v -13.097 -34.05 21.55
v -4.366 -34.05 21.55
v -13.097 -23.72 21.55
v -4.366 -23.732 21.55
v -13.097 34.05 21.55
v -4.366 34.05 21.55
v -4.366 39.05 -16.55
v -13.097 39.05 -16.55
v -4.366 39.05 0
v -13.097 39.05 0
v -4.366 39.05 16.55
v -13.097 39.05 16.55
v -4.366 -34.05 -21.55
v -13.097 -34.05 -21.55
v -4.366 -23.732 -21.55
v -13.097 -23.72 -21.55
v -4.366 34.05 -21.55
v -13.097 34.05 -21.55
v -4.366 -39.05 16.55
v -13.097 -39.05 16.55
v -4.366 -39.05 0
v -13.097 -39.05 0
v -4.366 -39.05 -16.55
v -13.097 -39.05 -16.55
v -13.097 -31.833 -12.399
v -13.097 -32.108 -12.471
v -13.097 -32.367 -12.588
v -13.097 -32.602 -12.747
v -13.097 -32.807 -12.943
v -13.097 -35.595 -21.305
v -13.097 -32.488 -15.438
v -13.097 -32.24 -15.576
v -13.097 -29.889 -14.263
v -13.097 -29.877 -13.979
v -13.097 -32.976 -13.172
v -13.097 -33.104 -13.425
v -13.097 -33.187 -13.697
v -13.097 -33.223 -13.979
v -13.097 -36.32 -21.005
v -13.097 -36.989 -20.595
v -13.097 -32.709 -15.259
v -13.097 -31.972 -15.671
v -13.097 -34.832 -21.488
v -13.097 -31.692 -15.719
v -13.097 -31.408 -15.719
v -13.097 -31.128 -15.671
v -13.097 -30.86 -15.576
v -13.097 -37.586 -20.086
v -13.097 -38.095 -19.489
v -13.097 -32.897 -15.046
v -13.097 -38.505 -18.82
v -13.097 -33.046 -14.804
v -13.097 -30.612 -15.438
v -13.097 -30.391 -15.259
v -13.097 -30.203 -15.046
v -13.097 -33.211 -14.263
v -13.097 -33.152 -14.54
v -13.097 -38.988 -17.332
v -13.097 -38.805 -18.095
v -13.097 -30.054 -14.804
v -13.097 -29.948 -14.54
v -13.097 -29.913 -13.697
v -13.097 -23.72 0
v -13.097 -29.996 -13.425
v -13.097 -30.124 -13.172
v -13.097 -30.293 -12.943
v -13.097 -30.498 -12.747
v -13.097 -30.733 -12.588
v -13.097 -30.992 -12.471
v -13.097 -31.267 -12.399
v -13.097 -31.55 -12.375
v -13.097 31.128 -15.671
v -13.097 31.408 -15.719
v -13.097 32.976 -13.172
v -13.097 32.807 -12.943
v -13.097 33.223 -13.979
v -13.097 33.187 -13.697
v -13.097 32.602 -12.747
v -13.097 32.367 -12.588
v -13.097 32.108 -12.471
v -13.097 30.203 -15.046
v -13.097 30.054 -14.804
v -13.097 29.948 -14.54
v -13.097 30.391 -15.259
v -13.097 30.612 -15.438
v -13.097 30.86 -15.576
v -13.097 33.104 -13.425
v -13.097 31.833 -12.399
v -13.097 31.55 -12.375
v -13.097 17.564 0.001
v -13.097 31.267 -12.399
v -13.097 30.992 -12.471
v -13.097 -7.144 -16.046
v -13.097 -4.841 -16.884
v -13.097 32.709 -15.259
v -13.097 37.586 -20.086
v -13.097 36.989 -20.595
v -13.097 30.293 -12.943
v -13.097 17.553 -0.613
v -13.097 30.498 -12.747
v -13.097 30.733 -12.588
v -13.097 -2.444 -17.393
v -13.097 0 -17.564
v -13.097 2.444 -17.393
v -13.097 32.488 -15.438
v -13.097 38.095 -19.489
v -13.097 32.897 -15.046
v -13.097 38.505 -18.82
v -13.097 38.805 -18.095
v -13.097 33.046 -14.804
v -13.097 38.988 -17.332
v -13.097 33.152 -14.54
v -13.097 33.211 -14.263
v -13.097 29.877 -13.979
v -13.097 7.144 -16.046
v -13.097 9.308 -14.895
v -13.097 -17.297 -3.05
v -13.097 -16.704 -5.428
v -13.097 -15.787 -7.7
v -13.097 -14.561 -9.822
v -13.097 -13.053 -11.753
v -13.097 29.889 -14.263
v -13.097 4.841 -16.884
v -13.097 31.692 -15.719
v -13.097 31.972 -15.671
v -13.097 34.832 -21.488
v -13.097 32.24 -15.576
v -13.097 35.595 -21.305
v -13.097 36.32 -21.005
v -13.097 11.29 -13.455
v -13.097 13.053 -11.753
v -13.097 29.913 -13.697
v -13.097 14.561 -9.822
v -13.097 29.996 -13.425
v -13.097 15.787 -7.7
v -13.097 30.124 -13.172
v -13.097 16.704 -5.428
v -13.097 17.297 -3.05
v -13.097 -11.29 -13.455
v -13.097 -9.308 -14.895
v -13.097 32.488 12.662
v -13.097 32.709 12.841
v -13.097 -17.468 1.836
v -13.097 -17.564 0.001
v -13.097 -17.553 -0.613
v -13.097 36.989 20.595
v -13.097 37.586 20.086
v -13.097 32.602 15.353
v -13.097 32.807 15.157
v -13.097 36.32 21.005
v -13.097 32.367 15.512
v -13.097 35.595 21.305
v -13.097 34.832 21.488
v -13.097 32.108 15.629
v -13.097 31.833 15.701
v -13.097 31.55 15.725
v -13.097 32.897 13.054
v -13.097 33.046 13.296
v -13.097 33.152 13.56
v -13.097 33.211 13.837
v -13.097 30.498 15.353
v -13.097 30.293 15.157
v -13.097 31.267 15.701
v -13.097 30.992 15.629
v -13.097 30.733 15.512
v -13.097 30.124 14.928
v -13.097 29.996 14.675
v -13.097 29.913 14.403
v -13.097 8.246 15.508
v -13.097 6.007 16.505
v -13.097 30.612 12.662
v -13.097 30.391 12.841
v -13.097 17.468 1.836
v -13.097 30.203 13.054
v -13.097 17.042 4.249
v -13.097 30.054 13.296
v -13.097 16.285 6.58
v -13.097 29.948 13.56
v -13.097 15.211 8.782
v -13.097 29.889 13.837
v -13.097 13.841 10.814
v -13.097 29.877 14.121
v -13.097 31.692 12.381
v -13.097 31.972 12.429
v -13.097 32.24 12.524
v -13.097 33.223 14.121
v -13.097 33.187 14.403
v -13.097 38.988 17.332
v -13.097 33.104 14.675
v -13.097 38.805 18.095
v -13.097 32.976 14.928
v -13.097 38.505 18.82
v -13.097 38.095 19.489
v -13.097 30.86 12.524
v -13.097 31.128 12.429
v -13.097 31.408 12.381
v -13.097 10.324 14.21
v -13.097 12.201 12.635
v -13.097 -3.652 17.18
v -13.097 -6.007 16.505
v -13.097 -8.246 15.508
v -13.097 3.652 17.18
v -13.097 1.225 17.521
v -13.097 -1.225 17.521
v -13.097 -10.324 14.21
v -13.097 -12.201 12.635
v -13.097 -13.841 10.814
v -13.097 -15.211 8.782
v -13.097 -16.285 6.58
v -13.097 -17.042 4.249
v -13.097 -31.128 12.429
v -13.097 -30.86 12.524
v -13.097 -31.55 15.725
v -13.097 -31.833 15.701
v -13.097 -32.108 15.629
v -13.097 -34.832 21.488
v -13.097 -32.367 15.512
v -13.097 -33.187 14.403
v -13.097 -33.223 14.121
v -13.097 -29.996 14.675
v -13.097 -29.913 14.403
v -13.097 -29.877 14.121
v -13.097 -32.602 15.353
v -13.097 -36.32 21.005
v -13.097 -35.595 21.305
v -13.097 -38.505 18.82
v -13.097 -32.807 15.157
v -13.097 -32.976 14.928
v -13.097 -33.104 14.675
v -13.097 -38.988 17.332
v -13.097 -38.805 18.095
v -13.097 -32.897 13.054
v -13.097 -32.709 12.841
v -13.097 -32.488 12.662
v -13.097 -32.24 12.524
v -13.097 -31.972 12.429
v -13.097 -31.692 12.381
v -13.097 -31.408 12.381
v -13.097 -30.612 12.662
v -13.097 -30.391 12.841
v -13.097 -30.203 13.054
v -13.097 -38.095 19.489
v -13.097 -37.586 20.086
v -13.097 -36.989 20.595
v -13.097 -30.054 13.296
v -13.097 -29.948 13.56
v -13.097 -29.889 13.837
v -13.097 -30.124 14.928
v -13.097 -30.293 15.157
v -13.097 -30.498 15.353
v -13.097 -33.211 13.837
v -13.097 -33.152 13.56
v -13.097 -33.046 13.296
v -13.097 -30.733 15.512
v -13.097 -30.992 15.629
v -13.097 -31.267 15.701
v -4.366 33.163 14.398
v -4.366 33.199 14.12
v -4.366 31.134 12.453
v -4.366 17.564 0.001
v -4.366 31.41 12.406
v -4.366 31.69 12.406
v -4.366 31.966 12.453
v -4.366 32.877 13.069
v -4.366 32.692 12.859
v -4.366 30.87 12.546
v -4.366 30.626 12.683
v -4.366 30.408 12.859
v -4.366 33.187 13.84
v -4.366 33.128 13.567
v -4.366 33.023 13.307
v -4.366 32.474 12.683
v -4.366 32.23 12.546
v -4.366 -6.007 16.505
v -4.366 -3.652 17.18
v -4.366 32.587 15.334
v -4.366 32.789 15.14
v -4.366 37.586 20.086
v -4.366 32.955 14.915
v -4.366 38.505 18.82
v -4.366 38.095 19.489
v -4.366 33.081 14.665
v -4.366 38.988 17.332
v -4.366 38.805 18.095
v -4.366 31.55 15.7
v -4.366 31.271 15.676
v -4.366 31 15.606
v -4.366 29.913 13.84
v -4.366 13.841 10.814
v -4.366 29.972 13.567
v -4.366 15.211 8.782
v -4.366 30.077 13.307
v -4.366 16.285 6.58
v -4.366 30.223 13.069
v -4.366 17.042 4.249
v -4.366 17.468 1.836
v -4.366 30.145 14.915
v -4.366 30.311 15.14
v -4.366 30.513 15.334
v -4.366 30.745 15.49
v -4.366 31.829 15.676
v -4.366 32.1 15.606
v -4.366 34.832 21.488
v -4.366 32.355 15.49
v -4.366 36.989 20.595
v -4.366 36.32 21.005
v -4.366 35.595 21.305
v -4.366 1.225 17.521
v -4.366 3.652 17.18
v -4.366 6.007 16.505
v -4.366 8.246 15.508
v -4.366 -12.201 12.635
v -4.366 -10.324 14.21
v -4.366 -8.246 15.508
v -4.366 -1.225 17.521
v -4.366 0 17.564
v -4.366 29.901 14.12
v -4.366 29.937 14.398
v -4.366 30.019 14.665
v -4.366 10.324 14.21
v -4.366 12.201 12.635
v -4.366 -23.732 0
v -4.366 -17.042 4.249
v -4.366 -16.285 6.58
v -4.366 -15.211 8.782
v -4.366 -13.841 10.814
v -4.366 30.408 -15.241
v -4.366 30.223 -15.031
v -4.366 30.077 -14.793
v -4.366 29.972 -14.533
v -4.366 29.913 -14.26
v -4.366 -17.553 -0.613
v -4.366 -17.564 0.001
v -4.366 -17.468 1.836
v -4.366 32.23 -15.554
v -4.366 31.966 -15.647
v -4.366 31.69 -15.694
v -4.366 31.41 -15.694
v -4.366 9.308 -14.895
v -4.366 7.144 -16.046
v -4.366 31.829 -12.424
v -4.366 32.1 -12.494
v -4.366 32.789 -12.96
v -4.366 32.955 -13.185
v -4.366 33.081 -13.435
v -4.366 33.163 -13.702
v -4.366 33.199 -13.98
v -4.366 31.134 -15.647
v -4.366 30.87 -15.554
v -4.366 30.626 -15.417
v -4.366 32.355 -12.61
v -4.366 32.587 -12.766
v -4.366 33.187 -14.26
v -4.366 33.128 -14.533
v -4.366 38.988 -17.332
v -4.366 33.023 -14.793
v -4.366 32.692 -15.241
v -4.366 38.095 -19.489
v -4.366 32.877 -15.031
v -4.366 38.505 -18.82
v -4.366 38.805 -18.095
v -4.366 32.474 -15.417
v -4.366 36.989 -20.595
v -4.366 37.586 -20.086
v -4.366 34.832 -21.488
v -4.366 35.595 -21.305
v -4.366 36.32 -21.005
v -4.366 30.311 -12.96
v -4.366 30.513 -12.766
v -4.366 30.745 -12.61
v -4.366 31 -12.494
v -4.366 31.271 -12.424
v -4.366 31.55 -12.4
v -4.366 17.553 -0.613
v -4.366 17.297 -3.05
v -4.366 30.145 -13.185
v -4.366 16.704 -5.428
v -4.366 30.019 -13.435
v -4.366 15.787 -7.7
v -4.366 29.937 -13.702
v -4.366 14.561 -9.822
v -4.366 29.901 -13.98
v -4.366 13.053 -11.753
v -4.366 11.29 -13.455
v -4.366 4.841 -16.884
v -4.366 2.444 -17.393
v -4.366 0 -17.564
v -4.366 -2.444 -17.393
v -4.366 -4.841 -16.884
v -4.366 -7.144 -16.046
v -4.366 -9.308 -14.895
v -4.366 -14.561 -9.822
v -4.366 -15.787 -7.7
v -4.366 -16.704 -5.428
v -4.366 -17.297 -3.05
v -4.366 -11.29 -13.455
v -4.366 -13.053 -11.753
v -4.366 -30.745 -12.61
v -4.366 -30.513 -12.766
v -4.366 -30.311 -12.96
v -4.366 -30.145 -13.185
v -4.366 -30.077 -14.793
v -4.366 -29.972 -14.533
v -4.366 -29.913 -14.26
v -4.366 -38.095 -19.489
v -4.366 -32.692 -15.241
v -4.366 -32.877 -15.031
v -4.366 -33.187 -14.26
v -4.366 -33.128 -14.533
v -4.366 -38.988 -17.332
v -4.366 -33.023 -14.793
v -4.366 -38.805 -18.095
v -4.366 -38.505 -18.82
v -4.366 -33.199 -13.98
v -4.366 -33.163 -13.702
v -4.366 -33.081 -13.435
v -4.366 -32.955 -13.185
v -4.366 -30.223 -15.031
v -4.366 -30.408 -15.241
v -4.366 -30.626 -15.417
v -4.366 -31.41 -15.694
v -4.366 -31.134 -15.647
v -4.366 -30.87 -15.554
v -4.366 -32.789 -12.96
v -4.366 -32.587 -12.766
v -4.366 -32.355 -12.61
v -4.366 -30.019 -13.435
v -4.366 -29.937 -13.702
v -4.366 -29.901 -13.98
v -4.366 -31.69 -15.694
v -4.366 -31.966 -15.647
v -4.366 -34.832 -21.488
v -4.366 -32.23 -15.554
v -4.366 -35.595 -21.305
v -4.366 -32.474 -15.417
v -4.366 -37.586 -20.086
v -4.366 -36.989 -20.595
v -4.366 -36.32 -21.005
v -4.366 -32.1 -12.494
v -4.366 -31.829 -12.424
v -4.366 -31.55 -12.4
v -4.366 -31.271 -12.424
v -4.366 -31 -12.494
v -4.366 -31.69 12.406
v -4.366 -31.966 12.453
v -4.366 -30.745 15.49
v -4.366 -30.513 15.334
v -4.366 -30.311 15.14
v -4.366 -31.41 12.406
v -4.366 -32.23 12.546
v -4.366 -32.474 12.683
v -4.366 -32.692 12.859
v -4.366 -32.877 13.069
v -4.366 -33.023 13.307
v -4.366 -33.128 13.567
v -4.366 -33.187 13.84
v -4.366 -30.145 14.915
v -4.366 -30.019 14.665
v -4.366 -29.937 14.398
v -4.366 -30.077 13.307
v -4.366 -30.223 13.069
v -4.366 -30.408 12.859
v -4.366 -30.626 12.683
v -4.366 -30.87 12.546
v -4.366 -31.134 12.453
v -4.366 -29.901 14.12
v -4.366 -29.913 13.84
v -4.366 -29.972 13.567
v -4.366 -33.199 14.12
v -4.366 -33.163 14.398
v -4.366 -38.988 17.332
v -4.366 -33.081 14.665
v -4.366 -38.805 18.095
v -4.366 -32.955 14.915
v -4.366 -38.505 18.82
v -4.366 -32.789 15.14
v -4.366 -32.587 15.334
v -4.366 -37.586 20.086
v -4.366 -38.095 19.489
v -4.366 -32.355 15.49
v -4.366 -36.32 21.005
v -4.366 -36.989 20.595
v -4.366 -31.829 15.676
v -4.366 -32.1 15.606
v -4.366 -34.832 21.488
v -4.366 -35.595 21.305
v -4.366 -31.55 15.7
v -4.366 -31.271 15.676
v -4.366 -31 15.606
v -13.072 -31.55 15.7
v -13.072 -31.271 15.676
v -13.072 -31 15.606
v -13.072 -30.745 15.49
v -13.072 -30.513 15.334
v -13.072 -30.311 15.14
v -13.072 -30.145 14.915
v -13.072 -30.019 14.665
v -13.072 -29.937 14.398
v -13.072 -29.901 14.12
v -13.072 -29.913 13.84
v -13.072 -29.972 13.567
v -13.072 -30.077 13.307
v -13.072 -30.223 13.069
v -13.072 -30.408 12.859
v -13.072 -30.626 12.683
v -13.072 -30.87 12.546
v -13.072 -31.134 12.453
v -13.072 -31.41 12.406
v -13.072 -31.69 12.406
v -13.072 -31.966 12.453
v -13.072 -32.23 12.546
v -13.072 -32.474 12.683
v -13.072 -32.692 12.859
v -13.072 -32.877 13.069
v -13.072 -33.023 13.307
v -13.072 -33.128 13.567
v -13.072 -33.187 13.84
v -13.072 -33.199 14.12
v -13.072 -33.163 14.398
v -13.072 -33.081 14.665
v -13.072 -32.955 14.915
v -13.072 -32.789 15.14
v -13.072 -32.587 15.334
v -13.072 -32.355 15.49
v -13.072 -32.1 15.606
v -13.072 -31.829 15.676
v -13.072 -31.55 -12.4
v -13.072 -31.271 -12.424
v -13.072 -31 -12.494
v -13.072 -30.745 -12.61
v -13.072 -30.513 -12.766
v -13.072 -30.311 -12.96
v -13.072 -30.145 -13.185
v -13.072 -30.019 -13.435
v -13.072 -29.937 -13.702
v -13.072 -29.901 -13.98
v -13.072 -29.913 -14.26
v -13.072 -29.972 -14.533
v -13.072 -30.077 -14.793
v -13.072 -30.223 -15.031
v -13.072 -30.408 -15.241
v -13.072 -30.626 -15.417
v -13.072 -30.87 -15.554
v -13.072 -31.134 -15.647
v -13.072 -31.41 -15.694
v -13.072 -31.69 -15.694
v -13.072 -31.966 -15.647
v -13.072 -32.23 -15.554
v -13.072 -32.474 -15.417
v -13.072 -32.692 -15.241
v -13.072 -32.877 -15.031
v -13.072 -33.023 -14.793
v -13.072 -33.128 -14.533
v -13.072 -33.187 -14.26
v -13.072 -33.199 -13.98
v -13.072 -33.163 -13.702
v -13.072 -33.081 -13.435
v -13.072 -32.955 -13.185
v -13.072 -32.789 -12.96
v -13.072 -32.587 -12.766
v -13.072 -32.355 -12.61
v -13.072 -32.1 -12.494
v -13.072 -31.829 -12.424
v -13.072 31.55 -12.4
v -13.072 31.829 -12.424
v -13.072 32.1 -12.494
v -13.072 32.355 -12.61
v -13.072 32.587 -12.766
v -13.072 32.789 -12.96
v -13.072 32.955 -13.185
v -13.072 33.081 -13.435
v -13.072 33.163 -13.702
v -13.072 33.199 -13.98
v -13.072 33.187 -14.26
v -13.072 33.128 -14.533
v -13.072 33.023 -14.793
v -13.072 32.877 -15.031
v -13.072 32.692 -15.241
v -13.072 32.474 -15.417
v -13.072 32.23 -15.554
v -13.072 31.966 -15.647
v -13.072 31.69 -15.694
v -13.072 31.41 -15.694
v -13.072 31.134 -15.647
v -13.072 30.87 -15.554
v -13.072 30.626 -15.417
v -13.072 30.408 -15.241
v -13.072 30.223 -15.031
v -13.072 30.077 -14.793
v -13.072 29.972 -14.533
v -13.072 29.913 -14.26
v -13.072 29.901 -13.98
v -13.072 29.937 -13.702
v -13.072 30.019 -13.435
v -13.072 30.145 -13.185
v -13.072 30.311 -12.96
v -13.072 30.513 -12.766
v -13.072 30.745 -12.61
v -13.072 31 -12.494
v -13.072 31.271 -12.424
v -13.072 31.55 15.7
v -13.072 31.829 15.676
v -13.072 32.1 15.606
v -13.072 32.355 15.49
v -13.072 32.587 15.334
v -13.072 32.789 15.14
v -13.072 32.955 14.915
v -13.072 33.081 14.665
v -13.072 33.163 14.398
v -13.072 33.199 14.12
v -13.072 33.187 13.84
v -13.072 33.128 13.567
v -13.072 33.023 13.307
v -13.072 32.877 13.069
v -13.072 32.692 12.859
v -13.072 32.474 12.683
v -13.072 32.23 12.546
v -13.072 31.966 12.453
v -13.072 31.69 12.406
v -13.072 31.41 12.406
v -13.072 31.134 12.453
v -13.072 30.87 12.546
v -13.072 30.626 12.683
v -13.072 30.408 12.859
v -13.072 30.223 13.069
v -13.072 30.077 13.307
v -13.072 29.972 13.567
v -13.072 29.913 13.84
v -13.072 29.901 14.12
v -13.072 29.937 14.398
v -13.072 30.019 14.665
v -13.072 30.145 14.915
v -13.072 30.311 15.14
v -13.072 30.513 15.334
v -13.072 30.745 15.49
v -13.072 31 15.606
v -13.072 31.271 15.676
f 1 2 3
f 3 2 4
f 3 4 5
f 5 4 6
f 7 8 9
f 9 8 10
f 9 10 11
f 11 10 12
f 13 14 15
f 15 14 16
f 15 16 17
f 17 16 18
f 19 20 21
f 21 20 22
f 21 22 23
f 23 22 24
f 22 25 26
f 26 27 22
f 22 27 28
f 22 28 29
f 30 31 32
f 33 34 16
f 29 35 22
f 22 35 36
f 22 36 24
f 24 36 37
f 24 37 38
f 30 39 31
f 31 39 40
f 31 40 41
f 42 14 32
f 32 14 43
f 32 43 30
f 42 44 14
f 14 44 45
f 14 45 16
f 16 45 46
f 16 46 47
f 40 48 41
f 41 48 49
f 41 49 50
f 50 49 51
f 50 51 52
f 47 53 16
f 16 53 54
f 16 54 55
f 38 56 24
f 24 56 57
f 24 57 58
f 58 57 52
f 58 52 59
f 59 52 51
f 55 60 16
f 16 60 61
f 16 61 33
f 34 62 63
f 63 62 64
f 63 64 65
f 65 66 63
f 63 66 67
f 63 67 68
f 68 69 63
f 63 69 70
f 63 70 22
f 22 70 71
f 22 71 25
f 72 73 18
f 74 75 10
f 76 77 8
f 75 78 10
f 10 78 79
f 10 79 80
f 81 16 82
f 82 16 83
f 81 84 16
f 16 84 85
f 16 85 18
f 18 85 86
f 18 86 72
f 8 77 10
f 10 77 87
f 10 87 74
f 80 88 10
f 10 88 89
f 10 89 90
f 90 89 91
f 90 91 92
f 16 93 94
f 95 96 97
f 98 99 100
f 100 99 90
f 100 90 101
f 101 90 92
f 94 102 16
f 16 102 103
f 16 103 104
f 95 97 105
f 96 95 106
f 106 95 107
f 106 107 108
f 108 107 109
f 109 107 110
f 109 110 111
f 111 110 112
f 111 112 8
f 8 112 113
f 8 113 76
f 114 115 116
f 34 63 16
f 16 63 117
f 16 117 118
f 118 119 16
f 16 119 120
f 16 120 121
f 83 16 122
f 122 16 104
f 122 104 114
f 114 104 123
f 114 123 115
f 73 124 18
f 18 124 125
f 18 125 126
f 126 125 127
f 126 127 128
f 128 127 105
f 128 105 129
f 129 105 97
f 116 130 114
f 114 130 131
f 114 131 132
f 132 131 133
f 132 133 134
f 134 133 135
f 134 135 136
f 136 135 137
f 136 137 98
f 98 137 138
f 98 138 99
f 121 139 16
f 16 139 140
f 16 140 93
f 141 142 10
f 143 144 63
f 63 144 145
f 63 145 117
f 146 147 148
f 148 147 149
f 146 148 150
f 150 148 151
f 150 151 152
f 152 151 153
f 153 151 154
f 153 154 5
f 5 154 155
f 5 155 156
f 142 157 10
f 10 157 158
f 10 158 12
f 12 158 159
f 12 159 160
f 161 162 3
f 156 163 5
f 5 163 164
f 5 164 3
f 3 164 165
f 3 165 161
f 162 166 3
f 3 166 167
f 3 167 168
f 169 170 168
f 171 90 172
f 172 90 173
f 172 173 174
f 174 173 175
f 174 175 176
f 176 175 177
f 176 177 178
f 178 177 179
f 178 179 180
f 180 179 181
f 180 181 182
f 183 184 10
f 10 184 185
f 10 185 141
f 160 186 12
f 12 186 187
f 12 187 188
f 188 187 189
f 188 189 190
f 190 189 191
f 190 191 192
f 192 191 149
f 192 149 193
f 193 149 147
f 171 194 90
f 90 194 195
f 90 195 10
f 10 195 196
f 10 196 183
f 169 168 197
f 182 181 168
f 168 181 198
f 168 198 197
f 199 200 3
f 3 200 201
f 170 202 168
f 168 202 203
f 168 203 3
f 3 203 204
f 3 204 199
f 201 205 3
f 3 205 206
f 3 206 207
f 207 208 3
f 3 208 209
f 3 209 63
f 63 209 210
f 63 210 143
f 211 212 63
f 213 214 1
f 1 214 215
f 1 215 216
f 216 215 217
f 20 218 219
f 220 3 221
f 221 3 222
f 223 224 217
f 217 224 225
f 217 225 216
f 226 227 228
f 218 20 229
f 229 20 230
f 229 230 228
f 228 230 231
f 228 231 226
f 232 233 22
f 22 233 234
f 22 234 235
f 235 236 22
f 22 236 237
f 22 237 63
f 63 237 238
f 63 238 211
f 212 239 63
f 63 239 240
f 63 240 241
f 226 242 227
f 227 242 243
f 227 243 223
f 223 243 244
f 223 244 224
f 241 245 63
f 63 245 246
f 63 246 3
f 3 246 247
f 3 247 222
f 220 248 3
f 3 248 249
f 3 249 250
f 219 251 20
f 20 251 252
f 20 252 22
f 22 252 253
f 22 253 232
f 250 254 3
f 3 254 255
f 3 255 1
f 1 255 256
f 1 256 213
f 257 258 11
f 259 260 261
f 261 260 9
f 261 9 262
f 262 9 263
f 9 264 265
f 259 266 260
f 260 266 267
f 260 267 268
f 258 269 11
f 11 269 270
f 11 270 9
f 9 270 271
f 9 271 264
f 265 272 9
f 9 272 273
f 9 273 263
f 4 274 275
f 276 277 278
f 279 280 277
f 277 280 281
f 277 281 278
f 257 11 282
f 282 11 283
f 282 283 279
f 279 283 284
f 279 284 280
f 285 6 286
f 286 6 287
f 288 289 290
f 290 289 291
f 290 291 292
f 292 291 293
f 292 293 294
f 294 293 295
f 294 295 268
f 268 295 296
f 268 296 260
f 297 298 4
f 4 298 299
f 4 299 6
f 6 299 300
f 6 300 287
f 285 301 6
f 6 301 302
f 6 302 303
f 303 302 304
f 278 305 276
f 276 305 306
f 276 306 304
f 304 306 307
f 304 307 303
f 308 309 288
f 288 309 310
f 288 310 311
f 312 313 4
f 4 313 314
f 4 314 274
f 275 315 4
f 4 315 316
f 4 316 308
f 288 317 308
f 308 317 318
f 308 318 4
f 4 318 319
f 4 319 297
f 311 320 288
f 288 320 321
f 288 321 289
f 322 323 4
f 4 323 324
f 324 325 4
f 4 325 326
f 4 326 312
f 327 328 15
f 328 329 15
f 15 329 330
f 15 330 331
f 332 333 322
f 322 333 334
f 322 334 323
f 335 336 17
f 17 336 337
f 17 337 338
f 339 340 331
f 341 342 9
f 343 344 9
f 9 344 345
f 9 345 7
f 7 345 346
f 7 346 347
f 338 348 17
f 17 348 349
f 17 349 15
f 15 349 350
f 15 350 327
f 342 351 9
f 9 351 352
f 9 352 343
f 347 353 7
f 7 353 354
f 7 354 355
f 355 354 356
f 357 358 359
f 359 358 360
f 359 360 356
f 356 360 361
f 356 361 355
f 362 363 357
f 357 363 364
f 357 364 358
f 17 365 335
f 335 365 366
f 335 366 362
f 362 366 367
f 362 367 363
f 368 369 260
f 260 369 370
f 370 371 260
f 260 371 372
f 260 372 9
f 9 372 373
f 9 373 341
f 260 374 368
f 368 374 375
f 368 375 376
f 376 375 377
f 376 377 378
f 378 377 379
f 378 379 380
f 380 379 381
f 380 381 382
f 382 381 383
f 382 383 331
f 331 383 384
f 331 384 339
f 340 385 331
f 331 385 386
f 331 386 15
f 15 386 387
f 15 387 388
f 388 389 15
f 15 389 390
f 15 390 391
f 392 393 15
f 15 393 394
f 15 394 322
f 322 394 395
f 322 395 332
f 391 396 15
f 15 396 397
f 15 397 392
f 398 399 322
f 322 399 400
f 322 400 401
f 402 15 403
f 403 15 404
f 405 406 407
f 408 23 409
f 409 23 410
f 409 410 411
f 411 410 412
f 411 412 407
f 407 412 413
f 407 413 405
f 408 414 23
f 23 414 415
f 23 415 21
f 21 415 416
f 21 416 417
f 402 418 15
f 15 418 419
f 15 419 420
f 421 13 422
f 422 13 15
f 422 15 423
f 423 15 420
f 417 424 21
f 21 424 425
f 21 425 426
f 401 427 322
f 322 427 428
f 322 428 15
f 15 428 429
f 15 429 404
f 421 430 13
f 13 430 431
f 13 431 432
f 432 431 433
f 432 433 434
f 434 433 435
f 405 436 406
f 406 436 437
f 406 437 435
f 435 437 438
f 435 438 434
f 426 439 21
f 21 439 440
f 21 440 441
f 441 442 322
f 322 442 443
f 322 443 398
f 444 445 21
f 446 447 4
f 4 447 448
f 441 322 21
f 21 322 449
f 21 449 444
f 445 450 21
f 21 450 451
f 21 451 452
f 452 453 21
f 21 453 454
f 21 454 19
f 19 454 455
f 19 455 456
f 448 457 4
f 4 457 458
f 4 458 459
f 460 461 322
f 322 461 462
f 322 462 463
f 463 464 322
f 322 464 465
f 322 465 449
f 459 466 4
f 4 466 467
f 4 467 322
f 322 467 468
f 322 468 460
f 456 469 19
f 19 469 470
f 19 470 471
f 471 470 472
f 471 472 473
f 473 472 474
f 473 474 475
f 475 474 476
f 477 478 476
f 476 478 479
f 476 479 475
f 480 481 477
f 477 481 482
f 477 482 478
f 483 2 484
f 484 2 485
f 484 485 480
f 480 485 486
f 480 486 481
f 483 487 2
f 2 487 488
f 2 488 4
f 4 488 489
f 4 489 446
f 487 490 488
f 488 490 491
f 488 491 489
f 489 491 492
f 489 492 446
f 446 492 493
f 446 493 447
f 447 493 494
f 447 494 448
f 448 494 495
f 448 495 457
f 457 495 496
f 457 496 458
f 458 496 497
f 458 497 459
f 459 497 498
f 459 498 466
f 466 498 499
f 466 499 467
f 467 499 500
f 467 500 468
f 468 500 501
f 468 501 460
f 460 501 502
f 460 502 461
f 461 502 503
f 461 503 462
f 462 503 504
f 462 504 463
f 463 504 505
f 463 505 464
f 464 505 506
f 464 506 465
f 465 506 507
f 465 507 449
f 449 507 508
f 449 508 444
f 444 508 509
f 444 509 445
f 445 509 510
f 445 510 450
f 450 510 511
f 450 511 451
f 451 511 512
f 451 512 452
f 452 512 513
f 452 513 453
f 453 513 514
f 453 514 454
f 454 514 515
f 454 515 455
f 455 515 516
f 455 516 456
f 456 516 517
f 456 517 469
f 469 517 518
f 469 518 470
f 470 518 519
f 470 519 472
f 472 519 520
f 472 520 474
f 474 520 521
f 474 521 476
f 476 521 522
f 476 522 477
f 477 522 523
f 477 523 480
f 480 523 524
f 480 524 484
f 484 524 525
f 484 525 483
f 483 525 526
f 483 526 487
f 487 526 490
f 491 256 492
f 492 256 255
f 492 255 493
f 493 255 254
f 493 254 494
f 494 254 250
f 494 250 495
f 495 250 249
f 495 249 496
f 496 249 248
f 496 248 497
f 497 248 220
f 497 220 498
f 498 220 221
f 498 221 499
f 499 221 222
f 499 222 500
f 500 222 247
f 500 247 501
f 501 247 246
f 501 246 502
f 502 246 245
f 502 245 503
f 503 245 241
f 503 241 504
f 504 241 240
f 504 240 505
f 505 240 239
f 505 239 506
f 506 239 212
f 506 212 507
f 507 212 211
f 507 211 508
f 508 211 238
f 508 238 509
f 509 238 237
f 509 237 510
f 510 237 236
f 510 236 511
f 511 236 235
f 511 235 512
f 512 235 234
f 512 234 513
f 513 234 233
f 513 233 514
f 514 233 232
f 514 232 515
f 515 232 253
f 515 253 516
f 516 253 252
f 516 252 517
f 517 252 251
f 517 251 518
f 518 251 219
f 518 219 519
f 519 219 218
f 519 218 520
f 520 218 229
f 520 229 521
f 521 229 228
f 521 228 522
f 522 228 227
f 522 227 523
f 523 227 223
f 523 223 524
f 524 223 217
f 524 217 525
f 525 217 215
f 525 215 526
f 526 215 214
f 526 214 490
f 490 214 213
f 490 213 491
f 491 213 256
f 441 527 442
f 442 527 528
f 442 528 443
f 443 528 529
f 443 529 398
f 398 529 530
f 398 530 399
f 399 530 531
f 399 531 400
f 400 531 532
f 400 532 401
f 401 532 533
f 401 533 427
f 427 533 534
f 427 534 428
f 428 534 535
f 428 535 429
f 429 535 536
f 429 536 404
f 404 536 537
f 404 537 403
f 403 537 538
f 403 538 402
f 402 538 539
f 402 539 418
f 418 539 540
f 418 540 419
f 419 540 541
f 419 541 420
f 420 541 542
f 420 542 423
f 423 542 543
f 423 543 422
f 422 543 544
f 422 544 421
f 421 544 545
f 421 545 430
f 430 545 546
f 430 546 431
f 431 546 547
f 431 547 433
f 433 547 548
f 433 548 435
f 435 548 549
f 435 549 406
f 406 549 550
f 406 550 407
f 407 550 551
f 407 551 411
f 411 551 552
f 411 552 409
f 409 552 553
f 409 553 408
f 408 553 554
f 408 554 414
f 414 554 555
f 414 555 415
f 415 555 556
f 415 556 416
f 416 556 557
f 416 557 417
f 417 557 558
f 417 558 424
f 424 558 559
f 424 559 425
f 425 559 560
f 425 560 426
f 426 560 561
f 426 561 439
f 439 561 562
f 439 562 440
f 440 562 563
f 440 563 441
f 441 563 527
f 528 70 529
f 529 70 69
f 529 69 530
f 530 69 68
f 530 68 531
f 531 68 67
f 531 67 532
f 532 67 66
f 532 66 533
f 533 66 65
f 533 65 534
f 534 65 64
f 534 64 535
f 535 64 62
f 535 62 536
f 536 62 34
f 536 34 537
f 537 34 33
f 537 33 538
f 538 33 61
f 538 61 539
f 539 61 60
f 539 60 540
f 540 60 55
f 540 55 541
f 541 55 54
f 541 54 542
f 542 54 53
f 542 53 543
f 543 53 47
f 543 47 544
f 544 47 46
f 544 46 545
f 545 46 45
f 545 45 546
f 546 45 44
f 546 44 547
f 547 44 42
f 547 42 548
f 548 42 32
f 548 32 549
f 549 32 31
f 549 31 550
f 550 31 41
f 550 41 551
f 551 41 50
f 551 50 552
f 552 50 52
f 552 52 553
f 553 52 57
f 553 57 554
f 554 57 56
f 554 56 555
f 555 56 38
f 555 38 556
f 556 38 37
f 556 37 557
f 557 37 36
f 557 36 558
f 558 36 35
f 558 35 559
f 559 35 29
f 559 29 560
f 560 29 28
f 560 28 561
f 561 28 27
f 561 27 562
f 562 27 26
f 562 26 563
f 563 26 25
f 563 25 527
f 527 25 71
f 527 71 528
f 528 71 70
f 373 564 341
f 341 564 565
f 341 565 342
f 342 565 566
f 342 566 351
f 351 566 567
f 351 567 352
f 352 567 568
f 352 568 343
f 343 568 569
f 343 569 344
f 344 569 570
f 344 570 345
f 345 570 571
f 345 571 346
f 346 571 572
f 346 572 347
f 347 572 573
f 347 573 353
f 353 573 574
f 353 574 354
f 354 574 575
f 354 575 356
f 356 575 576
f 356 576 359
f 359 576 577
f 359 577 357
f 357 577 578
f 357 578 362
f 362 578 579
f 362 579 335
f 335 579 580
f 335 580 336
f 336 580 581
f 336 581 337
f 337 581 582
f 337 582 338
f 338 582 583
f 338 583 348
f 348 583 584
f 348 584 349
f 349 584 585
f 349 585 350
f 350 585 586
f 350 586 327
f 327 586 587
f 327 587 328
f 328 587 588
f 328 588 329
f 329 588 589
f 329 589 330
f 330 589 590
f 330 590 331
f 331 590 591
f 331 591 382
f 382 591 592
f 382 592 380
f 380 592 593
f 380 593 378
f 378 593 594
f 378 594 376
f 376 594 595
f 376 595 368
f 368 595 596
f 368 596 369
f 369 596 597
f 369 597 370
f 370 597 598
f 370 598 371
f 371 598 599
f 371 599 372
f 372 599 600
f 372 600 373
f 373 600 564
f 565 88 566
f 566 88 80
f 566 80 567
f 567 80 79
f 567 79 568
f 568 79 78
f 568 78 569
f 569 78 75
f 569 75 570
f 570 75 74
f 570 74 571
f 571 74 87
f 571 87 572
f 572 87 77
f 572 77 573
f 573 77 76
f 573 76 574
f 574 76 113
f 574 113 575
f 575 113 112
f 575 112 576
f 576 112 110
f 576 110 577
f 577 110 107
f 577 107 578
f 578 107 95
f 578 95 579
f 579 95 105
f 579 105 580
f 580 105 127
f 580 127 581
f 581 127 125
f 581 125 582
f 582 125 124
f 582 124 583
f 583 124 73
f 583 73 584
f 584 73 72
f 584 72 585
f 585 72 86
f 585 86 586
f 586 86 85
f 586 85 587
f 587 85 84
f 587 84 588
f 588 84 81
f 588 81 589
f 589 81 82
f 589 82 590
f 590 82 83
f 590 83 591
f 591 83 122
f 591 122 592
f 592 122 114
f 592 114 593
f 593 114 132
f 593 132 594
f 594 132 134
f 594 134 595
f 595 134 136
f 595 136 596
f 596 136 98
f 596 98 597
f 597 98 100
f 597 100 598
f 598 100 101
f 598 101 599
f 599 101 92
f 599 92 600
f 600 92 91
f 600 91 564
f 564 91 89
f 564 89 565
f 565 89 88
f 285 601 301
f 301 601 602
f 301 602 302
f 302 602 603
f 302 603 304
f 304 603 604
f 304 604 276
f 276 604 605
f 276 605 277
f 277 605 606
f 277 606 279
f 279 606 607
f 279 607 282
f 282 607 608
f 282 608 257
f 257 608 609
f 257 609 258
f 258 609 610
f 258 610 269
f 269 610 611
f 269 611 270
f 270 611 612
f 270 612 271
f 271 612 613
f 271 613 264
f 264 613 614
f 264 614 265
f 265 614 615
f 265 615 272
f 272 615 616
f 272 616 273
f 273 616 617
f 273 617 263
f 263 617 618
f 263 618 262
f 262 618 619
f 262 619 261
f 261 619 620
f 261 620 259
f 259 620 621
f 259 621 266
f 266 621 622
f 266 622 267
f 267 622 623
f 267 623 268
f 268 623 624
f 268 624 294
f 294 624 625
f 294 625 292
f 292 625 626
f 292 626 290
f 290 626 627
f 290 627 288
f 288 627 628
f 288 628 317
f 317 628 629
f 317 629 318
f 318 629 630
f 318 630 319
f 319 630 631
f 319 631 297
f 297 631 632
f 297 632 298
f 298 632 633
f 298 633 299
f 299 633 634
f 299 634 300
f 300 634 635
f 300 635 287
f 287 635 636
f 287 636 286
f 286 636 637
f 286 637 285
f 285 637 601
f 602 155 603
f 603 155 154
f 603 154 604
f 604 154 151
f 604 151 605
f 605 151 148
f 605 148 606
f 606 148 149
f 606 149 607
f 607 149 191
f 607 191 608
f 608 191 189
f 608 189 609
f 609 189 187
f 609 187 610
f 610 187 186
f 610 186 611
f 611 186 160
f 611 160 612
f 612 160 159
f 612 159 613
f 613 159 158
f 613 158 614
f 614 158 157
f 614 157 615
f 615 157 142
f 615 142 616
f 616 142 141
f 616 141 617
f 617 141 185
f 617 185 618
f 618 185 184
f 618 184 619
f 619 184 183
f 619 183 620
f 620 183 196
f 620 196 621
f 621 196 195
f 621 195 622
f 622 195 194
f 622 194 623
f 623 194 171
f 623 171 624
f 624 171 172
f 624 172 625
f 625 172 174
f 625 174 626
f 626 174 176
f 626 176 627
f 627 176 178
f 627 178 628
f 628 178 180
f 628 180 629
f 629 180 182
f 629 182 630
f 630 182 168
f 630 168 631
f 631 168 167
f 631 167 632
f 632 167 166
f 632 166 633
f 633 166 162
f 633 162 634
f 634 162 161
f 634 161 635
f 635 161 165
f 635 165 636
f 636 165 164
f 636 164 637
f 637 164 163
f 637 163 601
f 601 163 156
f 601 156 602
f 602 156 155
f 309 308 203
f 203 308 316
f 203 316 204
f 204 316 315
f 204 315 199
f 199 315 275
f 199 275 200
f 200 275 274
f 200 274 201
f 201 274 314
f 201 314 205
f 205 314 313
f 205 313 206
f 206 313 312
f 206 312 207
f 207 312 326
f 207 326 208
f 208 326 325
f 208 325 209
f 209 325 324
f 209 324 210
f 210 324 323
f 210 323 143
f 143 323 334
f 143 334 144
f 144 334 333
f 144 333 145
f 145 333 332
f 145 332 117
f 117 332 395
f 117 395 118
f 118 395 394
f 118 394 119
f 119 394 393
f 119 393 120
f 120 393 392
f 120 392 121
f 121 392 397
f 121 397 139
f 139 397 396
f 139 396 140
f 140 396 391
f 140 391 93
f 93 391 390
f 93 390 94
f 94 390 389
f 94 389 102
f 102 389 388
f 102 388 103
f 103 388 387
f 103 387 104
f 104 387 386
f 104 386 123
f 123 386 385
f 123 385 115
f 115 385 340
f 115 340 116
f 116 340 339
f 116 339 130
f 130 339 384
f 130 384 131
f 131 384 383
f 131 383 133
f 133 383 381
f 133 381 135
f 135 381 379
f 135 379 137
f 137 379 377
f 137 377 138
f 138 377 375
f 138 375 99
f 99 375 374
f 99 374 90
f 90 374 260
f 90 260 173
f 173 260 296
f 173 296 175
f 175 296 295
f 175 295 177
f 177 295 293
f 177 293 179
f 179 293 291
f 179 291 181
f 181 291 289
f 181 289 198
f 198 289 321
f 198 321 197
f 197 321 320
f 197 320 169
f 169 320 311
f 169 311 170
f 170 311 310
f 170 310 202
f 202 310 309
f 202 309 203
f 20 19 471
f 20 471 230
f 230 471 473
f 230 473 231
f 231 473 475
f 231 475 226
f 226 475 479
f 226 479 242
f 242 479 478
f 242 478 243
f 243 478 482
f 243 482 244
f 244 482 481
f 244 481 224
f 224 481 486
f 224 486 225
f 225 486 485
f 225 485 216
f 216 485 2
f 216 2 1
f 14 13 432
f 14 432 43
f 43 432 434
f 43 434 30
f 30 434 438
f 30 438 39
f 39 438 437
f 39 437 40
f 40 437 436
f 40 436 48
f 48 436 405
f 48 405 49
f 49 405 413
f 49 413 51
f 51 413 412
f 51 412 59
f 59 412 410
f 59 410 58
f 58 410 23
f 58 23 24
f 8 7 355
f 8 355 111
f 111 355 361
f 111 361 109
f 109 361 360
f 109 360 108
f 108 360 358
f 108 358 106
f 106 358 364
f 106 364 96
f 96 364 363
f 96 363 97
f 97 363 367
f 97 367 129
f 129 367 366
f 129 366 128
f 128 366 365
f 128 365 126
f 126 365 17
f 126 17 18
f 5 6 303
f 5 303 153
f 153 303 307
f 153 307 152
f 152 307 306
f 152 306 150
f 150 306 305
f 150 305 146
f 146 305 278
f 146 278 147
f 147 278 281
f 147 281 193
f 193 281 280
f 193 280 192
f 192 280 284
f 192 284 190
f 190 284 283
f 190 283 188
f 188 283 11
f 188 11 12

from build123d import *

# Parameters (mm, degrees)
SKETCH1_R                               = 2.25
SKETCH1_R_2                             = 17.5641
BOSS_EXTRUDE1_DEPTH                     = 4.365625
SKETCH2_W                               = 78.1
SKETCH2_H                               = 43.1
BOSS_EXTRUDE2_DEPTH                     = 8.73125
M4_CLEARANCE_HOLE2_AT_2_COUNT           = 2
M4_CLEARANCE_HOLE2_AT_2_PITCH           = 28.1
M4_CLEARANCE_HOLE2_AT_3_COUNT           = 2
M4_CLEARANCE_HOLE2_AT_3_PITCH           = 69.07401827
M4_CLEARANCE_HOLE2_AT_4_COUNT           = 2
M4_CLEARANCE_HOLE2_AT_4_PITCH           = 63.1
SKETCH24_W                              = 78.1
SKETCH24_H                              = 43.1
BOSS_EXTRUDE3_DEPTH                     = 8.73125
TAP_DRILL_FOR_M4X0_7_TAP1_AT_2_COUNT    = 2
TAP_DRILL_FOR_M4X0_7_TAP1_AT_2_PITCH    = 28.1
TAP_DRILL_FOR_M4X0_7_TAP1_AT_3_COUNT    = 2
TAP_DRILL_FOR_M4X0_7_TAP1_AT_3_PITCH    = 69.07401827
TAP_DRILL_FOR_M4X0_7_TAP1_AT_4_COUNT    = 2
TAP_DRILL_FOR_M4X0_7_TAP1_AT_4_PITCH    = 63.1
TAP_DRILL_FOR_M3X0_5_TAP1_AT_2_COUNT    = 2
TAP_DRILL_FOR_M3X0_5_TAP1_AT_2_PITCH    = 36
TAP_DRILL_FOR_M3X0_5_TAP1_AT_3_COUNT    = 2
TAP_DRILL_FOR_M3X0_5_TAP1_AT_3_PITCH    = 28
TAP_DRILL_FOR_M3X0_5_TAP1_AT_4_COUNT    = 2
TAP_DRILL_FOR_M3X0_5_TAP1_AT_4_PITCH    = 45.607017004
TAP_DRILL_FOR_M2_5X0_45_TAP2_AT_2_COUNT = 2
TAP_DRILL_FOR_M2_5X0_45_TAP2_AT_2_PITCH = 15.8
SKETCH3_R                               = 17.5641
CUT_EXTRUDE3_DEPTH                      = 181.027817403
M6_CLEARANCE_HOLE2_AT_2_COUNT           = 2
M6_CLEARANCE_HOLE2_AT_2_PITCH           = 80
SKETCH14_W                              = 86.5
SKETCH14_H                              = 58.5
CUT_EXTRUDE4_DEPTH                      = 2
FILLET4_R                               = 10
M4_CLEARANCE_HOLE1_AT_2_COUNT           = 2
M4_CLEARANCE_HOLE1_AT_2_PITCH           = 14.136551913
M4_CLEARANCE_HOLE1_AT_3_COUNT           = 2
M4_CLEARANCE_HOLE1_AT_3_PITCH           = 7.068275957
M6_CLEARANCE_HOLE1_AT_2_COUNT           = 2
M6_CLEARANCE_HOLE1_AT_2_PITCH           = 25.4
FILLET5_R                               = 5
FILLET6_R                               = 5
SKETCH28_W                              = 15.5
SKETCH28_H                              = 20.75
SKETCH28_R                              = 1.5
BOSS_EXTRUDE4_DEPTH                     = 2.5
FILLET7_R                               = 1
SKETCH29_R                              = 1.5
BOSS_EXTRUDE5_DEPTH                     = 1.5
FILLET8_R                               = 0.5


with BuildPart() as part:
    # Sketch1 → Boss-Extrude1 (new, symmetric)
    with BuildSketch(Plane.YZ):
        Polygon((0, 170.95), (-50, 110.95), (-50, -79.05), (50, -79.05), (50, 110.95), align=None)
        with Locations((-26.25, -56.8)):
            Circle(SKETCH1_R, mode=Mode.SUBTRACT)
        with Locations((-26.25, -32.3)):
            Circle(SKETCH1_R, mode=Mode.SUBTRACT)
        with Locations((26.25, -56.8)):
            Circle(SKETCH1_R, mode=Mode.SUBTRACT)
        with Locations((26.25, -32.3)):
            Circle(SKETCH1_R, mode=Mode.SUBTRACT)
        Circle(SKETCH1_R_2, mode=Mode.SUBTRACT)
    extrude(amount=BOSS_EXTRUDE1_DEPTH, both=True)


with BuildPart() as body_2:
    # Sketch2 → Boss-Extrude2 (new body)
    with BuildSketch(Plane.YZ.offset(4.365625)):
        Rectangle(SKETCH2_W, SKETCH2_H)
    extrude(amount=BOSS_EXTRUDE2_DEPTH)


with BuildPart() as m4_clearance_hole2_tool:
    # Sketch23 → M4 Clearance Hole2 (revolve)
    with BuildSketch(Plane(origin=(13.096875, -31.55, 14.05), x_dir=(0, 0, -1), z_dir=(0, 1, 0))):
        Polygon((0, 0), (0, 17.4625), (2.25, 17.4625), (2.25, 0.025), (2.275, 0), align=None)
    m4_clearance_hole2 = revolve(axis=Axis((19.446875, -31.55, 14.05), (-1, 0, 0)))


with BuildPart() as part_1:
    add(part.part)

    # M4 Clearance Hole2: cut by m4_clearance_hole2_tool
    add(m4_clearance_hole2_tool.part, mode=Mode.SUBTRACT)


with BuildPart() as body_2_1:
    add(body_2.part)

    # M4 Clearance Hole2: cut by m4_clearance_hole2_tool
    add(m4_clearance_hole2_tool.part, mode=Mode.SUBTRACT)


with BuildPart() as m4_clearance_hole2_at_2_tool:
    # M4 Clearance Hole2 at 2: M4 Clearance Hole2 ×2
    with Locations(*[(0, 0, -i * M4_CLEARANCE_HOLE2_AT_2_PITCH) for i in range(1, M4_CLEARANCE_HOLE2_AT_2_COUNT)]):
        add(m4_clearance_hole2)


with BuildPart() as part_2:
    add(part_1.part)

    # M4 Clearance Hole2 at 2: cut by m4_clearance_hole2_at_2_tool
    add(m4_clearance_hole2_at_2_tool.part, mode=Mode.SUBTRACT)


with BuildPart() as body_2_2:
    add(body_2_1.part)

    # M4 Clearance Hole2 at 2: cut by m4_clearance_hole2_at_2_tool
    add(m4_clearance_hole2_at_2_tool.part, mode=Mode.SUBTRACT)


with BuildPart() as m4_clearance_hole2_at_3_tool:
    # M4 Clearance Hole2 at 3: M4 Clearance Hole2 ×2
    with Locations(*[Vector(0, 0.9135128023552276, -0.40680998012966574) * (i * M4_CLEARANCE_HOLE2_AT_3_PITCH) for i in range(1, M4_CLEARANCE_HOLE2_AT_3_COUNT)]):
        add(m4_clearance_hole2)


with BuildPart() as part_3:
    add(part_2.part)

    # M4 Clearance Hole2 at 3: cut by m4_clearance_hole2_at_3_tool
    add(m4_clearance_hole2_at_3_tool.part, mode=Mode.SUBTRACT)


with BuildPart() as body_2_3:
    add(body_2_2.part)

    # M4 Clearance Hole2 at 3: cut by m4_clearance_hole2_at_3_tool
    add(m4_clearance_hole2_at_3_tool.part, mode=Mode.SUBTRACT)


with BuildPart() as m4_clearance_hole2_at_4_tool:
    # M4 Clearance Hole2 at 4: M4 Clearance Hole2 ×2
    with Locations(*[(0, i * M4_CLEARANCE_HOLE2_AT_4_PITCH, 0) for i in range(1, M4_CLEARANCE_HOLE2_AT_4_COUNT)]):
        add(m4_clearance_hole2)


with BuildPart() as part_4:
    add(part_3.part)

    # M4 Clearance Hole2 at 4: cut by m4_clearance_hole2_at_4_tool
    add(m4_clearance_hole2_at_4_tool.part, mode=Mode.SUBTRACT)

    # Sketch7 → Tap Drill for M3x0.5 Tap1 (revolve, cut)
    with BuildSketch(Plane(origin=(4.365625, -18, -24.05), x_dir=(0, 0, -1), z_dir=(0, 1, 0))):
        Polygon((0, 0), (0, 17.4625), (1.25, 17.4625), (1.25, 0.025), (1.275, 0), align=None)
    tap_drill_for_m3x0_5_tap1 = revolve(axis=Axis((10.715625, -18, -24.05), (-1, 0, 0)), mode=Mode.SUBTRACT)

    # Tap Drill for M3x0.5 Tap1 at 2: Tap Drill for M3x0.5 Tap1 ×2
    with Locations(*[(0, i * TAP_DRILL_FOR_M3X0_5_TAP1_AT_2_PITCH, 0) for i in range(1, TAP_DRILL_FOR_M3X0_5_TAP1_AT_2_COUNT)]):
        add(tap_drill_for_m3x0_5_tap1, mode=Mode.SUBTRACT)

    # Tap Drill for M3x0.5 Tap1 at 3: Tap Drill for M3x0.5 Tap1 ×2
    with Locations(*[(0, 0, -i * TAP_DRILL_FOR_M3X0_5_TAP1_AT_3_PITCH) for i in range(1, TAP_DRILL_FOR_M3X0_5_TAP1_AT_3_COUNT)]):
        add(tap_drill_for_m3x0_5_tap1, mode=Mode.SUBTRACT)

    # Tap Drill for M3x0.5 Tap1 at 4: Tap Drill for M3x0.5 Tap1 ×2
    with Locations(*[Vector(0, 0.7893522173763264, -0.6139406135149205) * (i * TAP_DRILL_FOR_M3X0_5_TAP1_AT_4_PITCH) for i in range(1, TAP_DRILL_FOR_M3X0_5_TAP1_AT_4_COUNT)]):
        add(tap_drill_for_m3x0_5_tap1, mode=Mode.SUBTRACT)

    # Sketch10 → Tap Drill for M2.5x0.45 Tap2 (revolve, cut)
    with BuildSketch(Plane(origin=(4.365625, -41, 103.325), x_dir=(0, 0, -1), z_dir=(0, 1, 0))):
        Polygon((0, 0), (0, 17.4625), (1.025, 17.4625), (1.025, 0.025), (1.05, 0), align=None)
    tap_drill_for_m2_5x0_45_tap2 = revolve(axis=Axis((10.715625, -41, 103.325), (-1, 0, 0)), mode=Mode.SUBTRACT)

    # Tap Drill for M2.5x0.45 Tap2 at 2: Tap Drill for M2.5x0.45 Tap2 ×2
    with Locations(*[(0, 0, -i * TAP_DRILL_FOR_M2_5X0_45_TAP2_AT_2_PITCH) for i in range(1, TAP_DRILL_FOR_M2_5X0_45_TAP2_AT_2_COUNT)]):
        add(tap_drill_for_m2_5x0_45_tap2, mode=Mode.SUBTRACT)

    # Sketch12 → M6 Clearance Hole2 (revolve, cut)
    with BuildSketch(Plane(origin=(4.365625, -40, -69.05), x_dir=(0, 0, -1), z_dir=(0, 1, 0))):
        Polygon((0, 0), (0, 17.4625), (3.3, 17.4625), (3.3, 0.025), (3.325, 0), align=None)
    m6_clearance_hole2 = revolve(axis=Axis((10.715625, -40, -69.05), (-1, 0, 0)), mode=Mode.SUBTRACT)

    # M6 Clearance Hole2 at 2: M6 Clearance Hole2 ×2
    with Locations(*[(0, i * M6_CLEARANCE_HOLE2_AT_2_PITCH, 0) for i in range(1, M6_CLEARANCE_HOLE2_AT_2_COUNT)]):
        add(m6_clearance_hole2, mode=Mode.SUBTRACT)

    # Sketch14 → Cut-Extrude4 (cut)
    with BuildSketch(Plane.YZ.offset(4.365625)):
        with Locations((0, 50.8)):
            Rectangle(SKETCH14_W, SKETCH14_H)
    extrude(amount=-CUT_EXTRUDE4_DEPTH, mode=Mode.SUBTRACT)

    # Fillet4
    fillet4_edges = [part_4.edges().sort_by_distance(p)[0] for p in [
        (0, 50, -79.05),
        (0, -50, -79.05),
        (0, 50, 110.95),
        (0, 0, 170.95),
        (0, -50, 110.95),
    ]]
    fillet(fillet4_edges, radius=FILLET4_R)

    # Sketch16 → M4 Clearance Hole1 (revolve, cut)
    with BuildSketch(Plane(origin=(4.365625, 0, 155.329500648), x_dir=(0, 0, -1), z_dir=(0, 1, 0))):
        Polygon((0, 0), (0, 17.4625), (2.25, 17.4625), (2.25, 0.025), (2.275, 0), align=None)
    m4_clearance_hole1 = revolve(axis=Axis((10.715625, 0, 155.329500648), (-1, 0, 0)), mode=Mode.SUBTRACT)

    # M4 Clearance Hole1 at 2: M4 Clearance Hole1 ×2
    with Locations(*[(0, 0, -i * M4_CLEARANCE_HOLE1_AT_2_PITCH) for i in range(1, M4_CLEARANCE_HOLE1_AT_2_COUNT)]):
        add(m4_clearance_hole1, mode=Mode.SUBTRACT)

    # M4 Clearance Hole1 at 3: M4 Clearance Hole1 ×2
    with Locations(*[(0, 0, -i * M4_CLEARANCE_HOLE1_AT_3_PITCH) for i in range(1, M4_CLEARANCE_HOLE1_AT_3_COUNT)]):
        add(m4_clearance_hole1, mode=Mode.SUBTRACT)

    # Sketch21 → M6 Clearance Hole1 (revolve, cut)
    with BuildSketch(Plane(origin=(4.365625, 0, 131.273931646), x_dir=(0, 0, -1), z_dir=(0, 1, 0))):
        Polygon((0, 0), (0, 17.4625), (3.3, 17.4625), (3.3, 0.025), (3.325, 0), align=None)
    m6_clearance_hole1 = revolve(axis=Axis((10.715625, 0, 131.273931646), (-1, 0, 0)), mode=Mode.SUBTRACT)

    # M6 Clearance Hole1 at 2: M6 Clearance Hole1 ×2
    with Locations(*[(0, 0, -i * M6_CLEARANCE_HOLE1_AT_2_PITCH) for i in range(1, M6_CLEARANCE_HOLE1_AT_2_COUNT)]):
        add(m6_clearance_hole1, mode=Mode.SUBTRACT)


with BuildPart() as body_2_4:
    add(body_2_3.part)

    # M4 Clearance Hole2 at 4: cut by m4_clearance_hole2_at_4_tool
    add(m4_clearance_hole2_at_4_tool.part, mode=Mode.SUBTRACT)


with BuildPart() as body_3:
    # Sketch24 → Boss-Extrude3 (new body)
    with BuildSketch(Plane(origin=(-4.365625, 0, 0), x_dir=(0, -1, 0), z_dir=(-1, 0, 0))):
        Rectangle(SKETCH24_W, SKETCH24_H)
    extrude(amount=BOSS_EXTRUDE3_DEPTH)

    # Sketch27 → Tap Drill for M4x0.7 Tap1 (revolve, cut)
    with BuildSketch(Plane(origin=(-13.096875, 31.55, 14.05), x_dir=(0, 0, 1), z_dir=(0, 1, 0))):
        Polygon((0, 0), (0, 9.722670021), (1.65, 8.73125), (1.65, 0.025), (1.675, 0), align=None)
    tap_drill_for_m4x0_7_tap1 = revolve(axis=Axis((-19.446875, 31.55, 14.05), (1, 0, 0)), mode=Mode.SUBTRACT)

    # Tap Drill for M4x0.7 Tap1 at 2: Tap Drill for M4x0.7 Tap1 ×2
    with Locations(*[(0, 0, -i * TAP_DRILL_FOR_M4X0_7_TAP1_AT_2_PITCH) for i in range(1, TAP_DRILL_FOR_M4X0_7_TAP1_AT_2_COUNT)]):
        add(tap_drill_for_m4x0_7_tap1, mode=Mode.SUBTRACT)

    # Tap Drill for M4x0.7 Tap1 at 3: Tap Drill for M4x0.7 Tap1 ×2
    with Locations(*[Vector(0, -0.9135128023552276, -0.40680998012966574) * (i * TAP_DRILL_FOR_M4X0_7_TAP1_AT_3_PITCH) for i in range(1, TAP_DRILL_FOR_M4X0_7_TAP1_AT_3_COUNT)]):
        add(tap_drill_for_m4x0_7_tap1, mode=Mode.SUBTRACT)

    # Tap Drill for M4x0.7 Tap1 at 4: Tap Drill for M4x0.7 Tap1 ×2
    with Locations(*[(0, -i * TAP_DRILL_FOR_M4X0_7_TAP1_AT_4_PITCH, 0) for i in range(1, TAP_DRILL_FOR_M4X0_7_TAP1_AT_4_COUNT)]):
        add(tap_drill_for_m4x0_7_tap1, mode=Mode.SUBTRACT)


with BuildPart() as cut_extrude3_tool:
    # Sketch3 → Cut-Extrude3 (new, through all)
    with BuildSketch(Plane.YZ.offset(13.096875)):
        Circle(SKETCH3_R)
    extrude(amount=-CUT_EXTRUDE3_DEPTH)


with BuildPart() as body_2_5:
    add(body_2_4.part)

    # Cut-Extrude3: cut by cut_extrude3_tool
    add(cut_extrude3_tool.part, mode=Mode.SUBTRACT)

    # Fillet6
    fillet6_edges = [body_2_5.edges().sort_by_distance(p)[0] for p in [
        (8.73125, -39.05, 21.55),
        (8.73125, 39.05, -21.55),
        (8.73125, -39.05, -21.55),
        (8.73125, 39.05, 21.55),
    ]]
    fillet(fillet6_edges, radius=FILLET6_R)


with BuildPart() as body_3_1:
    add(body_3.part)

    # Cut-Extrude3: cut by cut_extrude3_tool
    add(cut_extrude3_tool.part, mode=Mode.SUBTRACT)

    # Fillet5
    fillet5_edges = [body_3_1.edges().sort_by_distance(p)[0] for p in [
        (-8.73125, -39.05, 21.55),
        (-8.73125, -39.05, -21.55),
        (-8.73125, 39.05, -21.55),
        (-8.73125, 39.05, 21.55),
    ]]
    fillet(fillet5_edges, radius=FILLET5_R)


with BuildPart() as body_4:
    # Sketch28 → Boss-Extrude4 (new body)
    with BuildSketch(Plane.YZ.offset(4.365625)):
        with Locations((-46.275, 95.425)):
            Rectangle(SKETCH28_W, SKETCH28_H)
        with Locations((-41, 87.525)):
            Circle(SKETCH28_R, mode=Mode.SUBTRACT)
        with Locations((-41, 103.325)):
            Circle(SKETCH28_R, mode=Mode.SUBTRACT)
    extrude(amount=BOSS_EXTRUDE4_DEPTH)

    # Fillet7
    fillet7_edges = [body_4.edges().sort_by_distance(p)[0] for p in [
        (5.615625, -38.525, 105.8),
        (5.615625, -38.525, 85.05),
        (5.615625, -54.025, 85.05),
        (5.615625, -54.025, 105.8),
    ]]
    fillet(fillet7_edges, radius=FILLET7_R)

    # Sketch29 → Boss-Extrude5 (add)
    with BuildSketch(Plane(origin=(4.365625, 0, 0), x_dir=(0, -1, 0), z_dir=(-1, 0, 0))):
        with Locations((52.025, 104.175)):
            Circle(SKETCH29_R)
        with Locations((52.025, 100.675)):
            Circle(SKETCH29_R)
        with Locations((52.025, 97.175)):
            Circle(SKETCH29_R)
        with Locations((52.025, 93.675)):
            Circle(SKETCH29_R)
        with Locations((52.025, 90.175)):
            Circle(SKETCH29_R)
        with Locations((52.025, 86.675)):
            Circle(SKETCH29_R)
    extrude(amount=BOSS_EXTRUDE5_DEPTH)

    # Fillet8
    fillet8_edges = [body_4.edges().sort_by_distance(p)[0] for p in [
        (2.865625, -50.525, 86.675),
        (2.865625, -50.525, 90.175),
        (2.865625, -50.525, 93.675),
        (2.865625, -50.525, 97.175),
        (2.865625, -50.525, 100.675),
        (2.865625, -50.525, 104.175),
    ]]
    fillet(fillet8_edges, radius=FILLET8_R)


solid = body_3_1.part
